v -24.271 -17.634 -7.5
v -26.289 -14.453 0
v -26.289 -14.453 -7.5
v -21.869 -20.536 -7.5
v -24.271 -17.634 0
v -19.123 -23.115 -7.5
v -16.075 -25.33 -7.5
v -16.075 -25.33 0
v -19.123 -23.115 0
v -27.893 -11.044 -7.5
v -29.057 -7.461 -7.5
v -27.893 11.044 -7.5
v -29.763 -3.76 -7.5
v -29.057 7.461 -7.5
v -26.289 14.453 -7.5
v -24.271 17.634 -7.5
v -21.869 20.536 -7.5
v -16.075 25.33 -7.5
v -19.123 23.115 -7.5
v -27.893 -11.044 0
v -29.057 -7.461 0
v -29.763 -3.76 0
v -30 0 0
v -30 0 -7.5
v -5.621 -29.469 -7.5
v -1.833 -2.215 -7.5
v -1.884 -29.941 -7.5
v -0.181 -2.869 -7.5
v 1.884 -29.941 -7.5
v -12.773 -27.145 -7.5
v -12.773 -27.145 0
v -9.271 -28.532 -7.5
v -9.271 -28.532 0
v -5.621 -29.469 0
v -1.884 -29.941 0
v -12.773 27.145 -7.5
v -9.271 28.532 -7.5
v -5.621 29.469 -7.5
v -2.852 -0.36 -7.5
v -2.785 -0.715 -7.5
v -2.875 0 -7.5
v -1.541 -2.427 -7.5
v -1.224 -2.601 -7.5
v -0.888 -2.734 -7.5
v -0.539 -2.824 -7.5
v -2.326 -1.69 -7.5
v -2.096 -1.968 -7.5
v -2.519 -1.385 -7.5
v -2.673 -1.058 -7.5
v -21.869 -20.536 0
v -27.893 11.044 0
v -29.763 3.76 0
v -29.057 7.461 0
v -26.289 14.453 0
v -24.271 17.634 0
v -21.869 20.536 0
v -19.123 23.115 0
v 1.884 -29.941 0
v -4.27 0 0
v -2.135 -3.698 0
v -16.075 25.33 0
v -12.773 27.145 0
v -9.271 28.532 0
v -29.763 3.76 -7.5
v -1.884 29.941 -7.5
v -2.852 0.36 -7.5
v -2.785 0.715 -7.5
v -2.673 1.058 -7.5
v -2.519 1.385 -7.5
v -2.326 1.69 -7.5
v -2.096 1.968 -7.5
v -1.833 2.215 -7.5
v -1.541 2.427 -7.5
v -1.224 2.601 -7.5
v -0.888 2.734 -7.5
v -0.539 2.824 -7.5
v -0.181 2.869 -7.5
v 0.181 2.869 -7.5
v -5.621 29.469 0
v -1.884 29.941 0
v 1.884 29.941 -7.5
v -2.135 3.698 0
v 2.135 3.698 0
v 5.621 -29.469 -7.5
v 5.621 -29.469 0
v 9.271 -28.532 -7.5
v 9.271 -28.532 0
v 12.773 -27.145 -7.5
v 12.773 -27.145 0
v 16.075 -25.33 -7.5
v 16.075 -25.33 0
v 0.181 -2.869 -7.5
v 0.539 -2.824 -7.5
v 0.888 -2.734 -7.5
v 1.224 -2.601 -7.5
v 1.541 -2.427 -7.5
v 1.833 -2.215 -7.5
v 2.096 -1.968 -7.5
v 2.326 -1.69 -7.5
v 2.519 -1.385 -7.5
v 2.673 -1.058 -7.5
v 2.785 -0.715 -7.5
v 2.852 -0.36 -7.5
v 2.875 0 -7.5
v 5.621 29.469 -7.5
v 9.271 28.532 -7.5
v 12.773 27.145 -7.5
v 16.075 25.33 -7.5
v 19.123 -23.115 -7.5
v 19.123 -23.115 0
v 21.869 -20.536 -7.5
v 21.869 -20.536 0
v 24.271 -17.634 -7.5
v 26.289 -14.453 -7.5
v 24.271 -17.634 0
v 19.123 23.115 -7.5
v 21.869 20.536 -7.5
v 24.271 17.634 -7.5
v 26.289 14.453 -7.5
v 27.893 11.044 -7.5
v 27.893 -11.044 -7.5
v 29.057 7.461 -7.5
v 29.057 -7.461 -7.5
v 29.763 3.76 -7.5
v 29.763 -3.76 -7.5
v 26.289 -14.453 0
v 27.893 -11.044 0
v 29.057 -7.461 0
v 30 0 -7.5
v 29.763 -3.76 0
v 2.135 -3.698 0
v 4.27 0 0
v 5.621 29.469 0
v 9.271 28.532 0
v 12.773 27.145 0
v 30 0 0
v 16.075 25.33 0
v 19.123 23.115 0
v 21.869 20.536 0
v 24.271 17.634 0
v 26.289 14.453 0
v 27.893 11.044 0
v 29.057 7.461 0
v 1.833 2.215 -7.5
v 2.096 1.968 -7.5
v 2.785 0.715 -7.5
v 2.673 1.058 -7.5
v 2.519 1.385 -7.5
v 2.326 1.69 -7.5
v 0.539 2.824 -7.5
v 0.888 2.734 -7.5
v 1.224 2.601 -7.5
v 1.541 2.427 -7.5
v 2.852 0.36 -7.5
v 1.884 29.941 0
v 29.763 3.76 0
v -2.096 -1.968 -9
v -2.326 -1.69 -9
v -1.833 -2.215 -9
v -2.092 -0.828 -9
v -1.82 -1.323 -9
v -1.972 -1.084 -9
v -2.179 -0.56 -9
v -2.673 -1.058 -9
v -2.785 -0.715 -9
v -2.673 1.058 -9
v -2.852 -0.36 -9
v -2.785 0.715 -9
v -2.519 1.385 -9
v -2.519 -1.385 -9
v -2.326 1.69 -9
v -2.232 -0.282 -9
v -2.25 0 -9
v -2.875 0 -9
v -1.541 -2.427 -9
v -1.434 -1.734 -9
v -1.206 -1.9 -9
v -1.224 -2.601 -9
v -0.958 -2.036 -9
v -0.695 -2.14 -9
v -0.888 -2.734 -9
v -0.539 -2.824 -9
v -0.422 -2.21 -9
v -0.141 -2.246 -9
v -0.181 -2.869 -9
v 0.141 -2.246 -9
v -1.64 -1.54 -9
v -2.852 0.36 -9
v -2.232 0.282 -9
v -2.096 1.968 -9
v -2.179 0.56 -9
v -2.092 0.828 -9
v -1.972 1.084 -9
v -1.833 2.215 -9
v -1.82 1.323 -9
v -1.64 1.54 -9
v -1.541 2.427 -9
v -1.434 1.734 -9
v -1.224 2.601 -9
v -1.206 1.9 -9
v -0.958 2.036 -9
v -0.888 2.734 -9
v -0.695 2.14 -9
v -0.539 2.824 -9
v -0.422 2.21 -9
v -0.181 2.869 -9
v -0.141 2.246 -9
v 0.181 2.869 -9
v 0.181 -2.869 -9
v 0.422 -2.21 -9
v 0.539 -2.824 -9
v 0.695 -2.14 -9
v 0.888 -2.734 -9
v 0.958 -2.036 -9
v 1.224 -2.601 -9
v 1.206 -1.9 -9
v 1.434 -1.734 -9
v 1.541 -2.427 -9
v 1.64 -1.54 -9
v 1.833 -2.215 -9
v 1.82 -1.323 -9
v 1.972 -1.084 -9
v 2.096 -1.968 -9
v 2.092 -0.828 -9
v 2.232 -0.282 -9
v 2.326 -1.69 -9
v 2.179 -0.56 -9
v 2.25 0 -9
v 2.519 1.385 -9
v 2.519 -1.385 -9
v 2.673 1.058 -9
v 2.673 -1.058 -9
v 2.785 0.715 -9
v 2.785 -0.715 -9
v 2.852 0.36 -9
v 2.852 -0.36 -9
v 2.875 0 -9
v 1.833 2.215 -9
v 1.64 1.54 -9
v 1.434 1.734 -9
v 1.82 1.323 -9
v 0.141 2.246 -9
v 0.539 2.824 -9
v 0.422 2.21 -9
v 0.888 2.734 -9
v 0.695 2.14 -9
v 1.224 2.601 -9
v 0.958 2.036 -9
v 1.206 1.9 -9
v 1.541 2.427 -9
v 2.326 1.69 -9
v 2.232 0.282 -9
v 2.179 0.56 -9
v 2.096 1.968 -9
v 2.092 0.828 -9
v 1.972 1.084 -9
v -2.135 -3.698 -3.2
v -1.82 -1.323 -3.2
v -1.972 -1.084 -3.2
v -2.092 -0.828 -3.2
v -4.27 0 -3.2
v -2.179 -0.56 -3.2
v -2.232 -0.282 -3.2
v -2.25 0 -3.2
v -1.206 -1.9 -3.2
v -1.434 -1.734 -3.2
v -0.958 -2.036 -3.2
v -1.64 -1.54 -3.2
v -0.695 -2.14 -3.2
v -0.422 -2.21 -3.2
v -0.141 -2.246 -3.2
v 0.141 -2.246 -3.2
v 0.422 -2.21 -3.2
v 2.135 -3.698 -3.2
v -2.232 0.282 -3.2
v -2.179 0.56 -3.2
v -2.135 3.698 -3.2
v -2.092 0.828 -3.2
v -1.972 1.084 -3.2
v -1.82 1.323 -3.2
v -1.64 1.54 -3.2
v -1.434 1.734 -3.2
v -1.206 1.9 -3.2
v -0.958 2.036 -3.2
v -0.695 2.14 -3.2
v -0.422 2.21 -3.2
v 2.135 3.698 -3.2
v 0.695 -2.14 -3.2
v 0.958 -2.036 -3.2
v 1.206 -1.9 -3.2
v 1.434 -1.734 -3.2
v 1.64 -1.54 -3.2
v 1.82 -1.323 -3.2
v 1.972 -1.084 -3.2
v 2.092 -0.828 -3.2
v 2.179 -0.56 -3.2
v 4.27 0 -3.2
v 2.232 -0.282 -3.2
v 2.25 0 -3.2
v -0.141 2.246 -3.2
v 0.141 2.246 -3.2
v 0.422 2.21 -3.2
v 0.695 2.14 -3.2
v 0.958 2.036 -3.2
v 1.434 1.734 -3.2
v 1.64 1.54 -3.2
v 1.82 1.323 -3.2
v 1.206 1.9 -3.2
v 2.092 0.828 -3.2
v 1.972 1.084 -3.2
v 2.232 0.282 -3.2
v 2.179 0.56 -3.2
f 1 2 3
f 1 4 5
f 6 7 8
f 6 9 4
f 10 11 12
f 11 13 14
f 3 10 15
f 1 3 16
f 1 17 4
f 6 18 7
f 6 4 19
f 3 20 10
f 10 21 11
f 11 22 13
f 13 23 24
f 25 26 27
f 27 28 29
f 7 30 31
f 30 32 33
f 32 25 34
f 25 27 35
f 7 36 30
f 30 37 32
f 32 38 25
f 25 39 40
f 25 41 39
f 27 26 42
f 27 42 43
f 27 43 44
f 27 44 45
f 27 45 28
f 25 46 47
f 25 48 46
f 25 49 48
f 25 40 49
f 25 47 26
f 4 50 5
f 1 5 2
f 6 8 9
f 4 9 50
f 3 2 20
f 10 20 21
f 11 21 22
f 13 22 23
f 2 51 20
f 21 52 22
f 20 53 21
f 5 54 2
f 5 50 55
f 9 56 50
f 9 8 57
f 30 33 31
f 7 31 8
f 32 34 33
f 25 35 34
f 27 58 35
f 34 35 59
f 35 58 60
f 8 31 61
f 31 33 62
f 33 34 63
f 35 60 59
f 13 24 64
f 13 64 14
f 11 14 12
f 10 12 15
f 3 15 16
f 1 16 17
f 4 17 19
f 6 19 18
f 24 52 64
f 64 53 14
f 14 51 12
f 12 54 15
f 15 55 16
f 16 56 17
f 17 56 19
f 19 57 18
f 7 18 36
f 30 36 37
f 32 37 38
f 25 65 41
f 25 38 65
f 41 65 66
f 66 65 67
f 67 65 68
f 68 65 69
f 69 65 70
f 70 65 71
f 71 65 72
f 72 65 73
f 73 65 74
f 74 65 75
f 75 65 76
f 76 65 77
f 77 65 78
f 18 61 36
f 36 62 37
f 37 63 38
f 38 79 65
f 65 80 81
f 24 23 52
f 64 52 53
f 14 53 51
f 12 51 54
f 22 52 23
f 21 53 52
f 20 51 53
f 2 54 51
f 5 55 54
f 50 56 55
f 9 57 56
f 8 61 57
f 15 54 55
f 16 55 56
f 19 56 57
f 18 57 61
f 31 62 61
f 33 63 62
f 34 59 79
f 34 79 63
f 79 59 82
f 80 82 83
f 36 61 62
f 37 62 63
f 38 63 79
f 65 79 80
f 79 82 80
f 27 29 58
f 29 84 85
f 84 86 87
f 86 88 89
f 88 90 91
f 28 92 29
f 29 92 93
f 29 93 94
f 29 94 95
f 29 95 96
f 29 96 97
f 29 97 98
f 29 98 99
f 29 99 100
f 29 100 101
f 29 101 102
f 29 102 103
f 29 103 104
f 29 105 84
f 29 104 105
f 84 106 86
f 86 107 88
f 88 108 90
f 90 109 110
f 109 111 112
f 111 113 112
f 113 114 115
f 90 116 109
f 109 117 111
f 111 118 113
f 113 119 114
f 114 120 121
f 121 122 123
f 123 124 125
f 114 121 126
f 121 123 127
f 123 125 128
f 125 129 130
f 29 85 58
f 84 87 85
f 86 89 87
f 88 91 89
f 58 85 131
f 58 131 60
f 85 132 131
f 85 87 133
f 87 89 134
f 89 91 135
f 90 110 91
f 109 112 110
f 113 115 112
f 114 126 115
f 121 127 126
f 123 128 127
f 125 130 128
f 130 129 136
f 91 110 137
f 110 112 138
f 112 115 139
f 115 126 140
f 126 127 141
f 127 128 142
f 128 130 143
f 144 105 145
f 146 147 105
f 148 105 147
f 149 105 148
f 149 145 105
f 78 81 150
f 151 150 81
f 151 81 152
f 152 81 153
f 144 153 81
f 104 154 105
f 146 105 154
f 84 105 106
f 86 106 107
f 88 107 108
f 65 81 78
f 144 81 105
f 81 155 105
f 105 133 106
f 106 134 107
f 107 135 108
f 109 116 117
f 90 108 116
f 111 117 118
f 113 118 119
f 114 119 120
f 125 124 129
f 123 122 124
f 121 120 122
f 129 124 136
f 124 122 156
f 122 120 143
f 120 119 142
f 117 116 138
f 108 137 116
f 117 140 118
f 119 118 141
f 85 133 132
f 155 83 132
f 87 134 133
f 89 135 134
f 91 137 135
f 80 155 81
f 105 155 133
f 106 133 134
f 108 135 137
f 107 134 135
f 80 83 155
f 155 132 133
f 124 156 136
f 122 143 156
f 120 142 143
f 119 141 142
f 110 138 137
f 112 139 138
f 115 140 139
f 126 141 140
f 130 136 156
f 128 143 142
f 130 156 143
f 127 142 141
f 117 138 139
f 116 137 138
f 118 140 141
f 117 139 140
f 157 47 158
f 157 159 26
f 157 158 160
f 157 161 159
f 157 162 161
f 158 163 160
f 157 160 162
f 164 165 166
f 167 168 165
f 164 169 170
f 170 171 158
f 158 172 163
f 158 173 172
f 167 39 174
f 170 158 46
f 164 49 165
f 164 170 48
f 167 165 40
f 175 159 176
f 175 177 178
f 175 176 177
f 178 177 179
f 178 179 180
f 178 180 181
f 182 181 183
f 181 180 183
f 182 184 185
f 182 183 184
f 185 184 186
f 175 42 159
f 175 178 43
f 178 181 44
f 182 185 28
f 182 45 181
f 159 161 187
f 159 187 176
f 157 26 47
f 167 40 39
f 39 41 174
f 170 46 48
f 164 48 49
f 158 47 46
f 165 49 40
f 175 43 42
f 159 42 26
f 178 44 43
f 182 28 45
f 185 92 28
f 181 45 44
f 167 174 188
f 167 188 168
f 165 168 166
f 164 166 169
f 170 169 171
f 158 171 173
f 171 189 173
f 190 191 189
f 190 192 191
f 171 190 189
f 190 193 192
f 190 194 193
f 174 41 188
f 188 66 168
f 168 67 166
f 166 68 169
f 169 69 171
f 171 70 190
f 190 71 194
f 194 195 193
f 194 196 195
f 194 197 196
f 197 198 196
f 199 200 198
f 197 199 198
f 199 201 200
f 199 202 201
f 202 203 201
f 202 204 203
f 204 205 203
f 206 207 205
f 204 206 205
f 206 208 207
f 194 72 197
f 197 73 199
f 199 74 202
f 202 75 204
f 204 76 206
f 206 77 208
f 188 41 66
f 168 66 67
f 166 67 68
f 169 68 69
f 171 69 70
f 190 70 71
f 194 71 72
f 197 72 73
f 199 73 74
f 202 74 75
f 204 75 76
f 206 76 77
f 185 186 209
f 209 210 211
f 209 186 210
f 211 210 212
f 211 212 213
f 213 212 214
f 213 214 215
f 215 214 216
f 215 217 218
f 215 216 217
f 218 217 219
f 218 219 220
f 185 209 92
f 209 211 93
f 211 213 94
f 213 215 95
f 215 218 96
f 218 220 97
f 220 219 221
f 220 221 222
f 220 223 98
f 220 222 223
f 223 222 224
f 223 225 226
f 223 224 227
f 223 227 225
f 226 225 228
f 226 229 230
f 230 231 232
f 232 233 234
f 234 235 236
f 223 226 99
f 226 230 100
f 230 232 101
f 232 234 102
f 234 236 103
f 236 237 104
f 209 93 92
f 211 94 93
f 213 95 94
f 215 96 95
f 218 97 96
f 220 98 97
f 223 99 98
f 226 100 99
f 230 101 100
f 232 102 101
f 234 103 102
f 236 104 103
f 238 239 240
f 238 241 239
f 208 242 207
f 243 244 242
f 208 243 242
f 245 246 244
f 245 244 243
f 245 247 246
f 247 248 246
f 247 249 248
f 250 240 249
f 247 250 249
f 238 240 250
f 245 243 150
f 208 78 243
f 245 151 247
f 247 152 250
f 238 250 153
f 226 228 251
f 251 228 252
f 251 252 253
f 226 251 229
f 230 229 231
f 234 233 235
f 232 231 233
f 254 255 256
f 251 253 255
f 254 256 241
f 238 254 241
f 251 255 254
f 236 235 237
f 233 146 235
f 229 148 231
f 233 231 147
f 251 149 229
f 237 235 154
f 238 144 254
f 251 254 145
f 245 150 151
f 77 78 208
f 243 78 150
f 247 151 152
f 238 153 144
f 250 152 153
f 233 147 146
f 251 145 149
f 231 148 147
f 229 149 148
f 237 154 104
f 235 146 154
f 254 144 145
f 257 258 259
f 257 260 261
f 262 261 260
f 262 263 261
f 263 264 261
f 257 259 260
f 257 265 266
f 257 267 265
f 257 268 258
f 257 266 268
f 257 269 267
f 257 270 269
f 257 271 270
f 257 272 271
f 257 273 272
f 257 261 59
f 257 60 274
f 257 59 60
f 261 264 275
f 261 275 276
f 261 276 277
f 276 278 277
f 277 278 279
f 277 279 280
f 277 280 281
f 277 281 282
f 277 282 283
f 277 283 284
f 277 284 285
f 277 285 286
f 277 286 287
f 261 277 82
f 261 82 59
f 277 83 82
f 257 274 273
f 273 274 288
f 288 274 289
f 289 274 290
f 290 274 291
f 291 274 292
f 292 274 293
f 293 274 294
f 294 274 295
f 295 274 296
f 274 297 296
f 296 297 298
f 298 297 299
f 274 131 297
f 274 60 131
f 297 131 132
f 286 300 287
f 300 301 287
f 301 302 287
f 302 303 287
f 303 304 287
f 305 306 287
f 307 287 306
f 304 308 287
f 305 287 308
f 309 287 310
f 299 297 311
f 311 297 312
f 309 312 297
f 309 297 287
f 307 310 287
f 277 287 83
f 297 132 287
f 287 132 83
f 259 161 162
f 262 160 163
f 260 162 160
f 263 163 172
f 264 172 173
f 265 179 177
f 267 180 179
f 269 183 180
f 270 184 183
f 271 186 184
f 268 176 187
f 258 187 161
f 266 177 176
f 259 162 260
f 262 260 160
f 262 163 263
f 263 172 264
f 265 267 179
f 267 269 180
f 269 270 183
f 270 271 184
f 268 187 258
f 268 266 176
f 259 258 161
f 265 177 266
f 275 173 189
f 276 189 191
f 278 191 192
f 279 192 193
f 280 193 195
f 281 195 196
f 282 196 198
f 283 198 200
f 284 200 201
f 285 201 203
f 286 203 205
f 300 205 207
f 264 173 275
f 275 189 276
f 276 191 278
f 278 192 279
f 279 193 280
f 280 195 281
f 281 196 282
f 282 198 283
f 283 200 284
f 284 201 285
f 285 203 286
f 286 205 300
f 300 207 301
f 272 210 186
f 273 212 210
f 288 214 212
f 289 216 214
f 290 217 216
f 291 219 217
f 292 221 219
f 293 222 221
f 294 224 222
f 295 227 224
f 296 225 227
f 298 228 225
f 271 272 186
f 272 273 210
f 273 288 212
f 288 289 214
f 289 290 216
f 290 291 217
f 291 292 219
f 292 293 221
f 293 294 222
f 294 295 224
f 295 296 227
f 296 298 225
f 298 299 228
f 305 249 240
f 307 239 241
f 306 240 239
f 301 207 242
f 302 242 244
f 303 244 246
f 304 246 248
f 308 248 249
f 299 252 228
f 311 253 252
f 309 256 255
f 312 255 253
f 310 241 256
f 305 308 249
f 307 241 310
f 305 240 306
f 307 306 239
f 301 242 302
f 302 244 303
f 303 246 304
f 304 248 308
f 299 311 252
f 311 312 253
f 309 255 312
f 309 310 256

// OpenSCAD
$fn = 50;


difference() {
	union() {
		translate(v = [0, 0, -7.5000000000]) {
			cylinder(h = 7.5000000000, r = 30.0000000000);
		}
		#translate(v = [0, 0, -9.0000000000]) {
			cylinder(h = 9, r = 2.8750000000);
		}
	}
	union() {
		translate(v = [0, 0, 0]) {
			rotate(a = [0, 0, 0]) {
				difference() {
					union() {
						translate(v = [0, 0, -3.2000000000]) {
							linear_extrude(height = 3.2000000000) {
								polygon(points = [[4.2698000000, 0.0000000000], [2.1349000000, 3.6977552691], [-2.1349000000, 3.6977552691], [-4.2698000000, 0.0000000000], [-2.1349000000, -3.6977552691], [2.1349000000, -3.6977552691]]);
							}
						}
					}
					union();
				}
			}
		}
		#translate(v = [0, 0, -100.0000000000]) {
			cylinder(h = 200, r = 2.2500000000);
		}
	}
}
